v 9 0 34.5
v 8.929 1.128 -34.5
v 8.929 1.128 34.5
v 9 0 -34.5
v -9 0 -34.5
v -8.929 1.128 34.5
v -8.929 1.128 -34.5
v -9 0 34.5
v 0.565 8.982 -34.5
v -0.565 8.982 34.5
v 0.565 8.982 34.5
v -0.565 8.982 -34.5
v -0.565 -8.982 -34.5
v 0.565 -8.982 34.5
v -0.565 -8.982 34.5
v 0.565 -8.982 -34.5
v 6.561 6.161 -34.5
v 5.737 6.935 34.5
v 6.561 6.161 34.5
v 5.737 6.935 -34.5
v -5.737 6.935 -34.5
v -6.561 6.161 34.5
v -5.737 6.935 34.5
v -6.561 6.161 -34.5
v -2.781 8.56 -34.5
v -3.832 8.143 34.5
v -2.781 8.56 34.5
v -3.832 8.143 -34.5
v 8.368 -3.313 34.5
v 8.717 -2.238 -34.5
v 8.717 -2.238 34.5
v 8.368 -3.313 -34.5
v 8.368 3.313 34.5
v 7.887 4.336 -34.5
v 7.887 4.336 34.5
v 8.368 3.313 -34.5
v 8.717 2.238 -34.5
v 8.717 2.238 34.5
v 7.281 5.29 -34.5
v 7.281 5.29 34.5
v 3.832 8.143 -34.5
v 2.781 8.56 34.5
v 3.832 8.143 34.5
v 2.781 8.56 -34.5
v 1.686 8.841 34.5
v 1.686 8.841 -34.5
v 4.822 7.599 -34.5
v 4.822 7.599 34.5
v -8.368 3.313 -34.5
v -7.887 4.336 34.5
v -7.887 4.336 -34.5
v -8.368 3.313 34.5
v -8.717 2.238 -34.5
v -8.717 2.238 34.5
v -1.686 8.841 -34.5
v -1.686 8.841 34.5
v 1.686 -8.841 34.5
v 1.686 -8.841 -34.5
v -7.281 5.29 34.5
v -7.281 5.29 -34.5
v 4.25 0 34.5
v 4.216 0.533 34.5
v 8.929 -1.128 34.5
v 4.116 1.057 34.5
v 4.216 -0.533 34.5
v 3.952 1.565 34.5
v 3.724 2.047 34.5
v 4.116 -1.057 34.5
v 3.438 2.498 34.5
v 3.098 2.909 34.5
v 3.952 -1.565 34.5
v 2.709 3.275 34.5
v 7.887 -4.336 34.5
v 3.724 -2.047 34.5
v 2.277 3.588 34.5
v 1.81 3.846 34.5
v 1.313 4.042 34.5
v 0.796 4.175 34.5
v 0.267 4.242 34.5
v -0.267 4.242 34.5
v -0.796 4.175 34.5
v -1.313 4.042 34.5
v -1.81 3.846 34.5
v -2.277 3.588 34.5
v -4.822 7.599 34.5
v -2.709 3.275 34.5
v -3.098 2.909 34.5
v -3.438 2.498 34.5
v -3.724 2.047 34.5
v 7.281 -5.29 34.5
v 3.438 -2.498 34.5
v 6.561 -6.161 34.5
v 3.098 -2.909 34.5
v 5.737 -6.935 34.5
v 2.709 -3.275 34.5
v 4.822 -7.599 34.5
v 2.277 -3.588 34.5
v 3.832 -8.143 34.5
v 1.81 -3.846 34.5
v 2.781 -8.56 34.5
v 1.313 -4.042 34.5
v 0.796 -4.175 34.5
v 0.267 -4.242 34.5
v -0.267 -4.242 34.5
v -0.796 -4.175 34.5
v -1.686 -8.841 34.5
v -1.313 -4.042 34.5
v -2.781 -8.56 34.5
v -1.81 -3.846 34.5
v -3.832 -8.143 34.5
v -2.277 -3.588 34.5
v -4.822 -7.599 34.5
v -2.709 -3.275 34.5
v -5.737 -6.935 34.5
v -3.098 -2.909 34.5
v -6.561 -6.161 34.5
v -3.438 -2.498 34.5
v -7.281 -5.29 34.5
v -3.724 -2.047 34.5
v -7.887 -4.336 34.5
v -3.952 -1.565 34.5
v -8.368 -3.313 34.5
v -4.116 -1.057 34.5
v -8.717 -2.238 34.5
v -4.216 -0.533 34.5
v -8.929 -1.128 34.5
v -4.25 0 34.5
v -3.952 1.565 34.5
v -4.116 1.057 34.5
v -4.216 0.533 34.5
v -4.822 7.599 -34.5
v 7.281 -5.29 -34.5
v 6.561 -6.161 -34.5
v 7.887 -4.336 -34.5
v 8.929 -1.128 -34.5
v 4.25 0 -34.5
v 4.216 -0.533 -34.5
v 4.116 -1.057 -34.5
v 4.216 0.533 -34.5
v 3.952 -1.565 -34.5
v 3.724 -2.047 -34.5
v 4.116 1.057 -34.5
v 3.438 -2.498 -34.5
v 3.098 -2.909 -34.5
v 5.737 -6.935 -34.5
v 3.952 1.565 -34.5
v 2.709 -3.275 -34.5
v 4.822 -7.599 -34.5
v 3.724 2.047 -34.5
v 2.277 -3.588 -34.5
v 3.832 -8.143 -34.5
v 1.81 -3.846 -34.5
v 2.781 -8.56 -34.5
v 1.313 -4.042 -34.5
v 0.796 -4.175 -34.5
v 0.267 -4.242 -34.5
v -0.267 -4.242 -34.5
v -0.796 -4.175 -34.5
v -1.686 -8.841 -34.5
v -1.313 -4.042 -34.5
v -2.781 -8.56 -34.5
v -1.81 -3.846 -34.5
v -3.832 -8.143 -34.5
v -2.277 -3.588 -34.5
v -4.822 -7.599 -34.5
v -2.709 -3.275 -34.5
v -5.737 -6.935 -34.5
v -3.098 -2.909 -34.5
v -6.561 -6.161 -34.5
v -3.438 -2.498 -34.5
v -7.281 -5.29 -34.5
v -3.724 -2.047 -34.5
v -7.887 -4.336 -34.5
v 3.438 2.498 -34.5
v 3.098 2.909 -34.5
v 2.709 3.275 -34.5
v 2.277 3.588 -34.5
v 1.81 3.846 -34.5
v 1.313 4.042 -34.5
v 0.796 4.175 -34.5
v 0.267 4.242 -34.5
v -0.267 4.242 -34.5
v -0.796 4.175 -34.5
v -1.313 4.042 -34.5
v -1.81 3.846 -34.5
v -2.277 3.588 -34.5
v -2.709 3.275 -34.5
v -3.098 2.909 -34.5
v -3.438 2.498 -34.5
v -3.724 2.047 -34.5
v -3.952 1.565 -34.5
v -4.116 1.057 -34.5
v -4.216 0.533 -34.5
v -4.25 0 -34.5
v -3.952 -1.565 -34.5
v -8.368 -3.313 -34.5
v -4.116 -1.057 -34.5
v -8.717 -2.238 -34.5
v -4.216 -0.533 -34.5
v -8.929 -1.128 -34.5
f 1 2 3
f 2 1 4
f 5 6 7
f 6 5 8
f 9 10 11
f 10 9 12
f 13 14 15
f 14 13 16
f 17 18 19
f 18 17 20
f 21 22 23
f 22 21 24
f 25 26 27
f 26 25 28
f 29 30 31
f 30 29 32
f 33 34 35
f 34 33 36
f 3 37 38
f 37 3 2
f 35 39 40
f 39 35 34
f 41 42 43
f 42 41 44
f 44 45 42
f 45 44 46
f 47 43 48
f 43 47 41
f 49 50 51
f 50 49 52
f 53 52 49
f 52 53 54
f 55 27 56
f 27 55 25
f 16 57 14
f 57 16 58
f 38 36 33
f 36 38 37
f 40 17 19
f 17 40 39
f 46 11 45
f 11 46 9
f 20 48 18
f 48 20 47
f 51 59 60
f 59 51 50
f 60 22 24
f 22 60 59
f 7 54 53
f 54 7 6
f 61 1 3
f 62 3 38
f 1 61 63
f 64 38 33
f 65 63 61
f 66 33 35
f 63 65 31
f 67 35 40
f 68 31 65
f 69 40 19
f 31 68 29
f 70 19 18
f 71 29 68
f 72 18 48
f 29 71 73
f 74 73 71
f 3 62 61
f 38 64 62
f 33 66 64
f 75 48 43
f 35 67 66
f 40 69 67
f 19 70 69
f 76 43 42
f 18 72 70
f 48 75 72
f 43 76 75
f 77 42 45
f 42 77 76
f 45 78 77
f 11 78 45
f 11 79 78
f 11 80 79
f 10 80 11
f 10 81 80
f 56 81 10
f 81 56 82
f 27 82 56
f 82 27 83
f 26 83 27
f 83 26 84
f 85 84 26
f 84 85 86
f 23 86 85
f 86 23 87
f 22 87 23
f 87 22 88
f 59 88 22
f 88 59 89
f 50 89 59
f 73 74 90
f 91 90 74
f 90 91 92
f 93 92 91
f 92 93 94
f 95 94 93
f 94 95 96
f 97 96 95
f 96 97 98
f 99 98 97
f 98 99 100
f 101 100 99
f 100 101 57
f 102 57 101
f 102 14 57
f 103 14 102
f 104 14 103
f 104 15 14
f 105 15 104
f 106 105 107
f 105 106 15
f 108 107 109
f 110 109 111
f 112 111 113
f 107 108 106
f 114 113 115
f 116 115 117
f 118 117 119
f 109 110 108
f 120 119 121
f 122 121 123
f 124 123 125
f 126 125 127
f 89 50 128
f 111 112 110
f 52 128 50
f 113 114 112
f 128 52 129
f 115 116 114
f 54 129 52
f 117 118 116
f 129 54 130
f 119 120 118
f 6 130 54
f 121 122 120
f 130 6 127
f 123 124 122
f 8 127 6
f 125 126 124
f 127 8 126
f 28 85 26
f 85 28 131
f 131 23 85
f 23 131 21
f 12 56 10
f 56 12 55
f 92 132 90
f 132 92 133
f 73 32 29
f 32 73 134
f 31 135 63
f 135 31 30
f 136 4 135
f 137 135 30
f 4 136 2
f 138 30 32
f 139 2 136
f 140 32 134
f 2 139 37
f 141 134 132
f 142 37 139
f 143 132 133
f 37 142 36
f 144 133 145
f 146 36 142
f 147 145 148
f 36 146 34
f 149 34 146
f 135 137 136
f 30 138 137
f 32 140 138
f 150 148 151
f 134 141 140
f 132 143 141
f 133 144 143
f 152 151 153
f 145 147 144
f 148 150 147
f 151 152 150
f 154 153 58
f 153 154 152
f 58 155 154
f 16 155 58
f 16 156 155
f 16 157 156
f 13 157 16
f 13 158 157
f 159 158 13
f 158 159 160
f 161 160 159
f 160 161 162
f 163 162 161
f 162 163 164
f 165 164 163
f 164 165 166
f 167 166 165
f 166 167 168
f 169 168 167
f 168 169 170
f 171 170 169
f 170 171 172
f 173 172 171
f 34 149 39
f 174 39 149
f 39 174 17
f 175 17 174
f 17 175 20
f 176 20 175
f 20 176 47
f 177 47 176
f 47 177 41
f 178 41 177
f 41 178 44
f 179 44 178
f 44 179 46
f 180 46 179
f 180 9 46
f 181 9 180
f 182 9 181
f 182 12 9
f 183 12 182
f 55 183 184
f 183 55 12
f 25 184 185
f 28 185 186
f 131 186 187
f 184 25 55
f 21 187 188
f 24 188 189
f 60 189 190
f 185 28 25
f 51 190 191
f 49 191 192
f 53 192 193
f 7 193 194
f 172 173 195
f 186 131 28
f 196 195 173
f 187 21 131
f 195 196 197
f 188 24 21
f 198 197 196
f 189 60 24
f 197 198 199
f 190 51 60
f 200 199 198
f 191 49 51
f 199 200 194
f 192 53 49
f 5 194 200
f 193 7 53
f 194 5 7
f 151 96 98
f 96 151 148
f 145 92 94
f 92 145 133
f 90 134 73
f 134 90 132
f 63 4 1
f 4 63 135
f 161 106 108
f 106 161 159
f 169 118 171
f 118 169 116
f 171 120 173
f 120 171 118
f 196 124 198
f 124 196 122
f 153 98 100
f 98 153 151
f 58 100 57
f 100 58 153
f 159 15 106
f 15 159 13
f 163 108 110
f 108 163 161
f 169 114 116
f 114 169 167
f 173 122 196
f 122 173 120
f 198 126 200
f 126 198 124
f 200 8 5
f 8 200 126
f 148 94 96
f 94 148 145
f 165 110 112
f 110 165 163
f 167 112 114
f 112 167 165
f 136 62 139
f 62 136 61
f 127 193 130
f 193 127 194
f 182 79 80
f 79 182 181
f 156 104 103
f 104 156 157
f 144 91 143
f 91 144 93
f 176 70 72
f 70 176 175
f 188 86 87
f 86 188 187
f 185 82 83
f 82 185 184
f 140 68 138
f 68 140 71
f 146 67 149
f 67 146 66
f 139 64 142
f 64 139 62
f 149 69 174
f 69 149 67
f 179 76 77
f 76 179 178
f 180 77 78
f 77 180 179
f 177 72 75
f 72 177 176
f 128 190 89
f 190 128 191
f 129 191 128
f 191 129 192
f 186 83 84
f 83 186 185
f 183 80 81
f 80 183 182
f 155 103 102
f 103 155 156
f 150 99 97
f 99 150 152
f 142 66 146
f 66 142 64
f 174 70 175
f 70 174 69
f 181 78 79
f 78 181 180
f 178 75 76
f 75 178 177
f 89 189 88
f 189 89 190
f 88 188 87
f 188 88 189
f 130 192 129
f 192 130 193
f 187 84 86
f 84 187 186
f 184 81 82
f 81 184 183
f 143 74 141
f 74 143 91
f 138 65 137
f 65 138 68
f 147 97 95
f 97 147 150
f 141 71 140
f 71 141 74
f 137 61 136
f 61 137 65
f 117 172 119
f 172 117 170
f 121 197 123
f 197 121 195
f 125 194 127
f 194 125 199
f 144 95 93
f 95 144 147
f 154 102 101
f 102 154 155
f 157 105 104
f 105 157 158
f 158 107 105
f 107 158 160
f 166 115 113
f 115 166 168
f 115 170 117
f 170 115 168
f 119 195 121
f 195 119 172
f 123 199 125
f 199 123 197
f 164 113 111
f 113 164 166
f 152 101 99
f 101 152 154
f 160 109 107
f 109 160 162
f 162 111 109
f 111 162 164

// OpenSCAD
$fn = 50;


difference() {
	union() {
		translate(v = [0, 0, -34.5000000000]) {
			cylinder(h = 69, r = 9.0000000000);
		}
	}
	union() {
		translate(v = [0, 0, -100.0000000000]) {
			cylinder(h = 200, r = 4.2500000000);
		}
	}
}
